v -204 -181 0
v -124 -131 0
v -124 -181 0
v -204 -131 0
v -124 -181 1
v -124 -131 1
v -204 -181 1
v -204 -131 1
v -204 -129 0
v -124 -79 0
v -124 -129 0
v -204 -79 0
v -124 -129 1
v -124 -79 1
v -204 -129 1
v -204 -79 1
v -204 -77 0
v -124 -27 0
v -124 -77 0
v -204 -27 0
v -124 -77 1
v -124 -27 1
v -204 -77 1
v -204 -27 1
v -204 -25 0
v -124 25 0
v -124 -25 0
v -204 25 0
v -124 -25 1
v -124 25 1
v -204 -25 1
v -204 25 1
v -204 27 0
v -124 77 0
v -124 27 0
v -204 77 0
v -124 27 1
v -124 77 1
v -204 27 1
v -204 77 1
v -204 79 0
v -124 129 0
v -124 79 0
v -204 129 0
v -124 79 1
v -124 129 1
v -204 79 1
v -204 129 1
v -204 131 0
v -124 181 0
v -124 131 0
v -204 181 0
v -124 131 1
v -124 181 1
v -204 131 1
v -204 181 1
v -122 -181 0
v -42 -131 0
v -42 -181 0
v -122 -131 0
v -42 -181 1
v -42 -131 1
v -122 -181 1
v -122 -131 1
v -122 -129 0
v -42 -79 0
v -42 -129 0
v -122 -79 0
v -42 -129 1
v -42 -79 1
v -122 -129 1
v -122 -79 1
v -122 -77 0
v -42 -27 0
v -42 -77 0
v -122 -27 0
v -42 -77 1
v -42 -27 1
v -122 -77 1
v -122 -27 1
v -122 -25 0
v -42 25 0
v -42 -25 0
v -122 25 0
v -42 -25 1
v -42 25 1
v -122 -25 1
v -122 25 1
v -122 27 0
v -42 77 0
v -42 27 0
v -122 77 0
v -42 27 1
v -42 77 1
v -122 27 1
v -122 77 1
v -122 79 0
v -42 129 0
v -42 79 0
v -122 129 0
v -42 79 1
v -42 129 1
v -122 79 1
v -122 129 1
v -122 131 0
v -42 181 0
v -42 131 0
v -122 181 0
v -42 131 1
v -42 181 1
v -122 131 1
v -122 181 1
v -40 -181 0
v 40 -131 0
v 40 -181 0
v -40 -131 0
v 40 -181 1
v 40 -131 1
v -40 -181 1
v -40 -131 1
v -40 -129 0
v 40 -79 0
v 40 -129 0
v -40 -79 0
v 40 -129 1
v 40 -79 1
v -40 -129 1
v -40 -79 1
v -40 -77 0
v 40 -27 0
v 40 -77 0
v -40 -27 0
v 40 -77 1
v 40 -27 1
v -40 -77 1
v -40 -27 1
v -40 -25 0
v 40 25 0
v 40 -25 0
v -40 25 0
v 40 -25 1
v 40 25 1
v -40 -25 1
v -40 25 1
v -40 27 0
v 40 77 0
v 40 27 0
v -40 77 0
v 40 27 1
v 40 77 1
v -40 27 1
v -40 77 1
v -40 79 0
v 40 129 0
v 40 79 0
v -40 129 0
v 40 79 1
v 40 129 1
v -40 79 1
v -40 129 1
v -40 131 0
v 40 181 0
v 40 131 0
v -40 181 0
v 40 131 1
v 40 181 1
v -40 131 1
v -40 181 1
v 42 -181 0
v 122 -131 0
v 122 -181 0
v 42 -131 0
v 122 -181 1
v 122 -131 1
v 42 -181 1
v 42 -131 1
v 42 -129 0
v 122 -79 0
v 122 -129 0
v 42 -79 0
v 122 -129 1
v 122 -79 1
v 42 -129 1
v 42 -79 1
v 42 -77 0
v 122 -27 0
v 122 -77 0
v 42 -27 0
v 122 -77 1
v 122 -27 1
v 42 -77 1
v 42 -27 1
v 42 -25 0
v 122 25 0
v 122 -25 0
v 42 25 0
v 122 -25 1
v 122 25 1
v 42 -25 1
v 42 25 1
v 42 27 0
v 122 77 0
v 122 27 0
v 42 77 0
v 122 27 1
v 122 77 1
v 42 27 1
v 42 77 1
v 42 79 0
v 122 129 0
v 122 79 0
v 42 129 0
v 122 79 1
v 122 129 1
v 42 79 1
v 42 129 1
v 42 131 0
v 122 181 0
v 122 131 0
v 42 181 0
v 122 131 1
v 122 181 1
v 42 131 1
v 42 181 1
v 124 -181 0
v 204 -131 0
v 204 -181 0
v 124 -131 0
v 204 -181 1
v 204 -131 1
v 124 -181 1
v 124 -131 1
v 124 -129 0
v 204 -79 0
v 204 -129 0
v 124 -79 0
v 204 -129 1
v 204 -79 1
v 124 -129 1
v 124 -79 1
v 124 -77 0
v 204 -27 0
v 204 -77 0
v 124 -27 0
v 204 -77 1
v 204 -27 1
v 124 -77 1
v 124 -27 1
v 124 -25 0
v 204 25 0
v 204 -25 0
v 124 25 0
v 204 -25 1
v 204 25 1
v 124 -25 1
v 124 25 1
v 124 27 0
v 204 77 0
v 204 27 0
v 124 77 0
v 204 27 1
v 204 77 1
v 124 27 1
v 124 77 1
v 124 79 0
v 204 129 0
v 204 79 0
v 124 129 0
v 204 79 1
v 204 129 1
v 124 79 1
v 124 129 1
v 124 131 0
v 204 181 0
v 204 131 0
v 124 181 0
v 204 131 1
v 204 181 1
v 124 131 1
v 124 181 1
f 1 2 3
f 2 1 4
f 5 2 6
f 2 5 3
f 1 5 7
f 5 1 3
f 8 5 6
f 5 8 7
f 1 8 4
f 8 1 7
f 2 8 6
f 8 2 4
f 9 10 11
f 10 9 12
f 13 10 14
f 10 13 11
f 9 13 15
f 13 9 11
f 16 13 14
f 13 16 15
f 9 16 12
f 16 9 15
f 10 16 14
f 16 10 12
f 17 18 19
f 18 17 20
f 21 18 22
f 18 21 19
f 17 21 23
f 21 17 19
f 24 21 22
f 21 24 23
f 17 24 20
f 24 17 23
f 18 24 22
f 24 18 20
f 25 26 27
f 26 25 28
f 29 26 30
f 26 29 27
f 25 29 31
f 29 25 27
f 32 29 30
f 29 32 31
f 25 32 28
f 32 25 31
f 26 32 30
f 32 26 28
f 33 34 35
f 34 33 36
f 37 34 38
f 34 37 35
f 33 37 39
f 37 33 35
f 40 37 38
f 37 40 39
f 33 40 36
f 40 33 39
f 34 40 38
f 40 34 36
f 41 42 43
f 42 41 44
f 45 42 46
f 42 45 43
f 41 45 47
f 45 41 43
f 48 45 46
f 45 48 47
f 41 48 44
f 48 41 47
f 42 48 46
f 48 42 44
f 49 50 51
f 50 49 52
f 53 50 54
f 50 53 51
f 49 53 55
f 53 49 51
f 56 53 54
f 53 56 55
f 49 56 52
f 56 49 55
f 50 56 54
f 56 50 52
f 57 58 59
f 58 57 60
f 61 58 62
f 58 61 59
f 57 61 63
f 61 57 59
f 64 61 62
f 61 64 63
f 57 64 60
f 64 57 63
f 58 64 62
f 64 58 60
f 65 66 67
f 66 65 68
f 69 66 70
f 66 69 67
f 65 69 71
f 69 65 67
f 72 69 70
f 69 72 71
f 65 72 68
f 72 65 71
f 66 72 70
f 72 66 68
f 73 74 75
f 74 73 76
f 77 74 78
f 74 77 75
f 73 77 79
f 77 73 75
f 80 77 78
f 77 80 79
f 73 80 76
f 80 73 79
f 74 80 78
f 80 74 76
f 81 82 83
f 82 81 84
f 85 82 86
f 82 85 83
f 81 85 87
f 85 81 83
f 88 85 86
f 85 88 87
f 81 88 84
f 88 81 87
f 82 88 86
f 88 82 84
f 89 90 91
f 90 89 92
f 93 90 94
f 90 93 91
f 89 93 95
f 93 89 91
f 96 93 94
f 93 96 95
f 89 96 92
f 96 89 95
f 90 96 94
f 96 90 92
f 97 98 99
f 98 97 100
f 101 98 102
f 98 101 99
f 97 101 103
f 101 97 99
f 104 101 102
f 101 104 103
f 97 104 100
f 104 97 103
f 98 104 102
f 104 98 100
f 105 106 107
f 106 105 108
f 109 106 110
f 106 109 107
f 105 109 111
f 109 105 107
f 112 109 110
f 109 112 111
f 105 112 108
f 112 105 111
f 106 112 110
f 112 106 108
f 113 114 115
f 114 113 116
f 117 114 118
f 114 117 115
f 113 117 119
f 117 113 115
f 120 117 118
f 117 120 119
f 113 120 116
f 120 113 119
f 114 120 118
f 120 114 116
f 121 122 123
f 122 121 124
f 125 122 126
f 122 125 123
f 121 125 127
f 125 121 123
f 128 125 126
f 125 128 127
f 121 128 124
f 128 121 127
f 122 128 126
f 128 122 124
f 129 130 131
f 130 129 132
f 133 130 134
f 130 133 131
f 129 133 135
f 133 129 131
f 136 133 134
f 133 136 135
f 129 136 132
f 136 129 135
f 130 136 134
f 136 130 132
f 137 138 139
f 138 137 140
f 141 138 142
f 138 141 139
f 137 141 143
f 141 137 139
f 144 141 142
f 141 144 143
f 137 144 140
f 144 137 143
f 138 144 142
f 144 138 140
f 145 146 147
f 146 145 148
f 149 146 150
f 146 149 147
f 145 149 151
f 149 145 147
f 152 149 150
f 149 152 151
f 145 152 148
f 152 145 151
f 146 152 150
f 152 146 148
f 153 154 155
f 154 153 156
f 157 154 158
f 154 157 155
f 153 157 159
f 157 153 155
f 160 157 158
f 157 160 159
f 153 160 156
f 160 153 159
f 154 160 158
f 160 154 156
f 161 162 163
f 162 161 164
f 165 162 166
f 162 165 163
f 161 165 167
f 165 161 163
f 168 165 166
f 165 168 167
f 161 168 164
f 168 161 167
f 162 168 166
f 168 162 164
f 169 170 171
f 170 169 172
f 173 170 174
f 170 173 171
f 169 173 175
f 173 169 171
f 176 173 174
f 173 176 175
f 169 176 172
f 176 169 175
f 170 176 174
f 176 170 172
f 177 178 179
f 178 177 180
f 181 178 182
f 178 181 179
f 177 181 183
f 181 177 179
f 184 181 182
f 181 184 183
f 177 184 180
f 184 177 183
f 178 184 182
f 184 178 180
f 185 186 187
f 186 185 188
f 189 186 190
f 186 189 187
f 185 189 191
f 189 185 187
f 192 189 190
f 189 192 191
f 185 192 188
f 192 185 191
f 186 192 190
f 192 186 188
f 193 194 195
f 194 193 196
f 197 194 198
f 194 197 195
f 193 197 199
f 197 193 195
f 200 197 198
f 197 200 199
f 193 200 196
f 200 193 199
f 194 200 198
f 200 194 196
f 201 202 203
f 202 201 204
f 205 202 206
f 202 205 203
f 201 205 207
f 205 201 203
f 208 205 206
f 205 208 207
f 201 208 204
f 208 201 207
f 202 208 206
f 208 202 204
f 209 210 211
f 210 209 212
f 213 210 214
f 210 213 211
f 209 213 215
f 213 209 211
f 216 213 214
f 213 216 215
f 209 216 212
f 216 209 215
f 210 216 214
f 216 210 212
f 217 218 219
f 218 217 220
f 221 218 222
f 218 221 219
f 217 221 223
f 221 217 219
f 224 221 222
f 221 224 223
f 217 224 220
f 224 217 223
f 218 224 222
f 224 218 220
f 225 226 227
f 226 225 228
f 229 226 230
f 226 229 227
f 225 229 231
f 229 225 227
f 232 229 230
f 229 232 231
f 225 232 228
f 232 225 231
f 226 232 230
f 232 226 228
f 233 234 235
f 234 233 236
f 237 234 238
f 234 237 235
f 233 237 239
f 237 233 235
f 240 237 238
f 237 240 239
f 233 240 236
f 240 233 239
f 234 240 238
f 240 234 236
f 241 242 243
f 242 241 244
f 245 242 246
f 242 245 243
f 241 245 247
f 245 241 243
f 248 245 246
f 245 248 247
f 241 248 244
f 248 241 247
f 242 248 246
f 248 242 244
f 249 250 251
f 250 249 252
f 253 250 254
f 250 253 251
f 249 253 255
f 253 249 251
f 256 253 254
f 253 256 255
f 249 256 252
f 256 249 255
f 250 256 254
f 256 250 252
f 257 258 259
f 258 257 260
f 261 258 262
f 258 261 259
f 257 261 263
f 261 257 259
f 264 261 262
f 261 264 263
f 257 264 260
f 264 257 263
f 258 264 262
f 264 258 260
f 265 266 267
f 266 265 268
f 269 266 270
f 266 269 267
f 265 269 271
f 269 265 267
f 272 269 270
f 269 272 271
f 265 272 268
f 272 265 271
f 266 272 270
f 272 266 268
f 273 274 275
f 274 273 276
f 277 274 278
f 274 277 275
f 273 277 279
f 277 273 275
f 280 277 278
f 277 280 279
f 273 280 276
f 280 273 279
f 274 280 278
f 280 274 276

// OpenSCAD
// Generated by Parametrix
ca_surface_faceSurface_0 = [ [ -204.0000, -181.0000 ],[ -124.0000, -181.0000 ],[ -124.0000, -131.0000 ],[ -204.0000, -131.0000 ],[ -204.0000, -181.0000 ] ];
cb_surface_faceSurface_0 = [  0, 1, 2, 3, 4 ];
ca_surface_faceSurface_1 = [ [ -204.0000, -129.0000 ],[ -124.0000, -129.0000 ],[ -124.0000, -79.0000 ],[ -204.0000, -79.0000 ],[ -204.0000, -129.0000 ] ];
cb_surface_faceSurface_1 = [  5, 6, 7, 8, 9 ];
ca_surface_faceSurface_2 = [ [ -204.0000, -77.0000 ],[ -124.0000, -77.0000 ],[ -124.0000, -27.0000 ],[ -204.0000, -27.0000 ],[ -204.0000, -77.0000 ] ];
cb_surface_faceSurface_2 = [  10, 11, 12, 13, 14 ];
ca_surface_faceSurface_3 = [ [ -204.0000, -25.0000 ],[ -124.0000, -25.0000 ],[ -124.0000, 25.0000 ],[ -204.0000, 25.0000 ],[ -204.0000, -25.0000 ] ];
cb_surface_faceSurface_3 = [  15, 16, 17, 18, 19 ];
ca_surface_faceSurface_4 = [ [ -204.0000, 27.0000 ],[ -124.0000, 27.0000 ],[ -124.0000, 77.0000 ],[ -204.0000, 77.0000 ],[ -204.0000, 27.0000 ] ];
cb_surface_faceSurface_4 = [  20, 21, 22, 23, 24 ];
ca_surface_faceSurface_5 = [ [ -204.0000, 79.0000 ],[ -124.0000, 79.0000 ],[ -124.0000, 129.0000 ],[ -204.0000, 129.0000 ],[ -204.0000, 79.0000 ] ];
cb_surface_faceSurface_5 = [  25, 26, 27, 28, 29 ];
ca_surface_faceSurface_6 = [ [ -204.0000, 131.0000 ],[ -124.0000, 131.0000 ],[ -124.0000, 181.0000 ],[ -204.0000, 181.0000 ],[ -204.0000, 131.0000 ] ];
cb_surface_faceSurface_6 = [  30, 31, 32, 33, 34 ];
ca_surface_faceSurface_7 = [ [ -122.0000, -181.0000 ],[ -42.0000, -181.0000 ],[ -42.0000, -131.0000 ],[ -122.0000, -131.0000 ],[ -122.0000, -181.0000 ] ];
cb_surface_faceSurface_7 = [  35, 36, 37, 38, 39 ];
ca_surface_faceSurface_8 = [ [ -122.0000, -129.0000 ],[ -42.0000, -129.0000 ],[ -42.0000, -79.0000 ],[ -122.0000, -79.0000 ],[ -122.0000, -129.0000 ] ];
cb_surface_faceSurface_8 = [  40, 41, 42, 43, 44 ];
ca_surface_faceSurface_9 = [ [ -122.0000, -77.0000 ],[ -42.0000, -77.0000 ],[ -42.0000, -27.0000 ],[ -122.0000, -27.0000 ],[ -122.0000, -77.0000 ] ];
cb_surface_faceSurface_9 = [  45, 46, 47, 48, 49 ];
ca_surface_faceSurface_10 = [ [ -122.0000, -25.0000 ],[ -42.0000, -25.0000 ],[ -42.0000, 25.0000 ],[ -122.0000, 25.0000 ],[ -122.0000, -25.0000 ] ];
cb_surface_faceSurface_10 = [  50, 51, 52, 53, 54 ];
ca_surface_faceSurface_11 = [ [ -122.0000, 27.0000 ],[ -42.0000, 27.0000 ],[ -42.0000, 77.0000 ],[ -122.0000, 77.0000 ],[ -122.0000, 27.0000 ] ];
cb_surface_faceSurface_11 = [  55, 56, 57, 58, 59 ];
ca_surface_faceSurface_12 = [ [ -122.0000, 79.0000 ],[ -42.0000, 79.0000 ],[ -42.0000, 129.0000 ],[ -122.0000, 129.0000 ],[ -122.0000, 79.0000 ] ];
cb_surface_faceSurface_12 = [  60, 61, 62, 63, 64 ];
ca_surface_faceSurface_13 = [ [ -122.0000, 131.0000 ],[ -42.0000, 131.0000 ],[ -42.0000, 181.0000 ],[ -122.0000, 181.0000 ],[ -122.0000, 131.0000 ] ];
cb_surface_faceSurface_13 = [  65, 66, 67, 68, 69 ];
ca_surface_faceSurface_14 = [ [ -40.0000, -181.0000 ],[ 40.0000, -181.0000 ],[ 40.0000, -131.0000 ],[ -40.0000, -131.0000 ],[ -40.0000, -181.0000 ] ];
cb_surface_faceSurface_14 = [  70, 71, 72, 73, 74 ];
ca_surface_faceSurface_15 = [ [ -40.0000, -129.0000 ],[ 40.0000, -129.0000 ],[ 40.0000, -79.0000 ],[ -40.0000, -79.0000 ],[ -40.0000, -129.0000 ] ];
cb_surface_faceSurface_15 = [  75, 76, 77, 78, 79 ];
ca_surface_faceSurface_16 = [ [ -40.0000, -77.0000 ],[ 40.0000, -77.0000 ],[ 40.0000, -27.0000 ],[ -40.0000, -27.0000 ],[ -40.0000, -77.0000 ] ];
cb_surface_faceSurface_16 = [  80, 81, 82, 83, 84 ];
ca_surface_faceSurface_17 = [ [ -40.0000, -25.0000 ],[ 40.0000, -25.0000 ],[ 40.0000, 25.0000 ],[ -40.0000, 25.0000 ],[ -40.0000, -25.0000 ] ];
cb_surface_faceSurface_17 = [  85, 86, 87, 88, 89 ];
ca_surface_faceSurface_18 = [ [ -40.0000, 27.0000 ],[ 40.0000, 27.0000 ],[ 40.0000, 77.0000 ],[ -40.0000, 77.0000 ],[ -40.0000, 27.0000 ] ];
cb_surface_faceSurface_18 = [  90, 91, 92, 93, 94 ];
ca_surface_faceSurface_19 = [ [ -40.0000, 79.0000 ],[ 40.0000, 79.0000 ],[ 40.0000, 129.0000 ],[ -40.0000, 129.0000 ],[ -40.0000, 79.0000 ] ];
cb_surface_faceSurface_19 = [  95, 96, 97, 98, 99 ];
ca_surface_faceSurface_20 = [ [ -40.0000, 131.0000 ],[ 40.0000, 131.0000 ],[ 40.0000, 181.0000 ],[ -40.0000, 181.0000 ],[ -40.0000, 131.0000 ] ];
cb_surface_faceSurface_20 = [  100, 101, 102, 103, 104 ];
ca_surface_faceSurface_21 = [ [ 42.0000, -181.0000 ],[ 122.0000, -181.0000 ],[ 122.0000, -131.0000 ],[ 42.0000, -131.0000 ],[ 42.0000, -181.0000 ] ];
cb_surface_faceSurface_21 = [  105, 106, 107, 108, 109 ];
ca_surface_faceSurface_22 = [ [ 42.0000, -129.0000 ],[ 122.0000, -129.0000 ],[ 122.0000, -79.0000 ],[ 42.0000, -79.0000 ],[ 42.0000, -129.0000 ] ];
cb_surface_faceSurface_22 = [  110, 111, 112, 113, 114 ];
ca_surface_faceSurface_23 = [ [ 42.0000, -77.0000 ],[ 122.0000, -77.0000 ],[ 122.0000, -27.0000 ],[ 42.0000, -27.0000 ],[ 42.0000, -77.0000 ] ];
cb_surface_faceSurface_23 = [  115, 116, 117, 118, 119 ];
ca_surface_faceSurface_24 = [ [ 42.0000, -25.0000 ],[ 122.0000, -25.0000 ],[ 122.0000, 25.0000 ],[ 42.0000, 25.0000 ],[ 42.0000, -25.0000 ] ];
cb_surface_faceSurface_24 = [  120, 121, 122, 123, 124 ];
ca_surface_faceSurface_25 = [ [ 42.0000, 27.0000 ],[ 122.0000, 27.0000 ],[ 122.0000, 77.0000 ],[ 42.0000, 77.0000 ],[ 42.0000, 27.0000 ] ];
cb_surface_faceSurface_25 = [  125, 126, 127, 128, 129 ];
ca_surface_faceSurface_26 = [ [ 42.0000, 79.0000 ],[ 122.0000, 79.0000 ],[ 122.0000, 129.0000 ],[ 42.0000, 129.0000 ],[ 42.0000, 79.0000 ] ];
cb_surface_faceSurface_26 = [  130, 131, 132, 133, 134 ];
ca_surface_faceSurface_27 = [ [ 42.0000, 131.0000 ],[ 122.0000, 131.0000 ],[ 122.0000, 181.0000 ],[ 42.0000, 181.0000 ],[ 42.0000, 131.0000 ] ];
cb_surface_faceSurface_27 = [  135, 136, 137, 138, 139 ];
ca_surface_faceSurface_28 = [ [ 124.0000, -181.0000 ],[ 204.0000, -181.0000 ],[ 204.0000, -131.0000 ],[ 124.0000, -131.0000 ],[ 124.0000, -181.0000 ] ];
cb_surface_faceSurface_28 = [  140, 141, 142, 143, 144 ];
ca_surface_faceSurface_29 = [ [ 124.0000, -129.0000 ],[ 204.0000, -129.0000 ],[ 204.0000, -79.0000 ],[ 124.0000, -79.0000 ],[ 124.0000, -129.0000 ] ];
cb_surface_faceSurface_29 = [  145, 146, 147, 148, 149 ];
ca_surface_faceSurface_30 = [ [ 124.0000, -77.0000 ],[ 204.0000, -77.0000 ],[ 204.0000, -27.0000 ],[ 124.0000, -27.0000 ],[ 124.0000, -77.0000 ] ];
cb_surface_faceSurface_30 = [  150, 151, 152, 153, 154 ];
ca_surface_faceSurface_31 = [ [ 124.0000, -25.0000 ],[ 204.0000, -25.0000 ],[ 204.0000, 25.0000 ],[ 124.0000, 25.0000 ],[ 124.0000, -25.0000 ] ];
cb_surface_faceSurface_31 = [  155, 156, 157, 158, 159 ];
ca_surface_faceSurface_32 = [ [ 124.0000, 27.0000 ],[ 204.0000, 27.0000 ],[ 204.0000, 77.0000 ],[ 124.0000, 77.0000 ],[ 124.0000, 27.0000 ] ];
cb_surface_faceSurface_32 = [  160, 161, 162, 163, 164 ];
ca_surface_faceSurface_33 = [ [ 124.0000, 79.0000 ],[ 204.0000, 79.0000 ],[ 204.0000, 129.0000 ],[ 124.0000, 129.0000 ],[ 124.0000, 79.0000 ] ];
cb_surface_faceSurface_33 = [  165, 166, 167, 168, 169 ];
ca_surface_faceSurface_34 = [ [ 124.0000, 131.0000 ],[ 204.0000, 131.0000 ],[ 204.0000, 181.0000 ],[ 124.0000, 181.0000 ],[ 124.0000, 131.0000 ] ];
cb_surface_faceSurface_34 = [  170, 171, 172, 173, 174 ];
a_surface_faceSurface = concat(ca_surface_faceSurface_0, ca_surface_faceSurface_1, ca_surface_faceSurface_2, ca_surface_faceSurface_3, ca_surface_faceSurface_4, ca_surface_faceSurface_5, ca_surface_faceSurface_6, ca_surface_faceSurface_7, ca_surface_faceSurface_8, ca_surface_faceSurface_9, ca_surface_faceSurface_10, ca_surface_faceSurface_11, ca_surface_faceSurface_12, ca_surface_faceSurface_13, ca_surface_faceSurface_14, ca_surface_faceSurface_15, ca_surface_faceSurface_16, ca_surface_faceSurface_17, ca_surface_faceSurface_18, ca_surface_faceSurface_19, ca_surface_faceSurface_20, ca_surface_faceSurface_21, ca_surface_faceSurface_22, ca_surface_faceSurface_23, ca_surface_faceSurface_24, ca_surface_faceSurface_25, ca_surface_faceSurface_26, ca_surface_faceSurface_27, ca_surface_faceSurface_28, ca_surface_faceSurface_29, ca_surface_faceSurface_30, ca_surface_faceSurface_31, ca_surface_faceSurface_32, ca_surface_faceSurface_33, ca_surface_faceSurface_34);
b_surface_faceSurface = [cb_surface_faceSurface_0, cb_surface_faceSurface_1, cb_surface_faceSurface_2, cb_surface_faceSurface_3, cb_surface_faceSurface_4, cb_surface_faceSurface_5, cb_surface_faceSurface_6, cb_surface_faceSurface_7, cb_surface_faceSurface_8, cb_surface_faceSurface_9, cb_surface_faceSurface_10, cb_surface_faceSurface_11, cb_surface_faceSurface_12, cb_surface_faceSurface_13, cb_surface_faceSurface_14, cb_surface_faceSurface_15, cb_surface_faceSurface_16, cb_surface_faceSurface_17, cb_surface_faceSurface_18, cb_surface_faceSurface_19, cb_surface_faceSurface_20, cb_surface_faceSurface_21, cb_surface_faceSurface_22, cb_surface_faceSurface_23, cb_surface_faceSurface_24, cb_surface_faceSurface_25, cb_surface_faceSurface_26, cb_surface_faceSurface_27, cb_surface_faceSurface_28, cb_surface_faceSurface_29, cb_surface_faceSurface_30, cb_surface_faceSurface_31, cb_surface_faceSurface_32, cb_surface_faceSurface_33, cb_surface_faceSurface_34];
ca_surface_faceOnePanel_0 = [ [ 0.0000, 0.0000 ],[ 80.0000, 0.0000 ],[ 80.0000, 50.0000 ],[ 0.0000, 50.0000 ],[ 0.0000, 0.0000 ] ];
cb_surface_faceOnePanel_0 = [  0, 1, 2, 3, 4 ];
a_surface_faceOnePanel = concat(ca_surface_faceOnePanel_0);
b_surface_faceOnePanel = [cb_surface_faceOnePanel_0];

module subpax_surface_panel_0 () {
	translate( [ -204, -181, 0 ])
		rotate( [ 0, 0, 0 ])
			   linear_extrude(height = 1) polygon(a_surface_faceOnePanel, b_surface_faceOnePanel);
}

module subpax_surface_panel_1 () {
	translate( [ -204, -129, 0 ])
		rotate( [ 0, 0, 0 ])
			   linear_extrude(height = 1) polygon(a_surface_faceOnePanel, b_surface_faceOnePanel);
}

module subpax_surface_panel_2 () {
	translate( [ -204, -77, 0 ])
		rotate( [ 0, 0, 0 ])
			   linear_extrude(height = 1) polygon(a_surface_faceOnePanel, b_surface_faceOnePanel);
}

module subpax_surface_panel_3 () {
	translate( [ -204, -25, 0 ])
		rotate( [ 0, 0, 0 ])
			   linear_extrude(height = 1) polygon(a_surface_faceOnePanel, b_surface_faceOnePanel);
}

module subpax_surface_panel_4 () {
	translate( [ -204, 27, 0 ])
		rotate( [ 0, 0, 0 ])
			   linear_extrude(height = 1) polygon(a_surface_faceOnePanel, b_surface_faceOnePanel);
}

module subpax_surface_panel_5 () {
	translate( [ -204, 79, 0 ])
		rotate( [ 0, 0, 0 ])
			   linear_extrude(height = 1) polygon(a_surface_faceOnePanel, b_surface_faceOnePanel);
}

module subpax_surface_panel_6 () {
	translate( [ -204, 131, 0 ])
		rotate( [ 0, 0, 0 ])
			   linear_extrude(height = 1) polygon(a_surface_faceOnePanel, b_surface_faceOnePanel);
}

module subpax_surface_panel_7 () {
	translate( [ -122, -181, 0 ])
		rotate( [ 0, 0, 0 ])
			   linear_extrude(height = 1) polygon(a_surface_faceOnePanel, b_surface_faceOnePanel);
}

module subpax_surface_panel_8 () {
	translate( [ -122, -129, 0 ])
		rotate( [ 0, 0, 0 ])
			   linear_extrude(height = 1) polygon(a_surface_faceOnePanel, b_surface_faceOnePanel);
}

module subpax_surface_panel_9 () {
	translate( [ -122, -77, 0 ])
		rotate( [ 0, 0, 0 ])
			   linear_extrude(height = 1) polygon(a_surface_faceOnePanel, b_surface_faceOnePanel);
}

module subpax_surface_panel_10 () {
	translate( [ -122, -25, 0 ])
		rotate( [ 0, 0, 0 ])
			   linear_extrude(height = 1) polygon(a_surface_faceOnePanel, b_surface_faceOnePanel);
}

module subpax_surface_panel_11 () {
	translate( [ -122, 27, 0 ])
		rotate( [ 0, 0, 0 ])
			   linear_extrude(height = 1) polygon(a_surface_faceOnePanel, b_surface_faceOnePanel);
}

module subpax_surface_panel_12 () {
	translate( [ -122, 79, 0 ])
		rotate( [ 0, 0, 0 ])
			   linear_extrude(height = 1) polygon(a_surface_faceOnePanel, b_surface_faceOnePanel);
}

module subpax_surface_panel_13 () {
	translate( [ -122, 131, 0 ])
		rotate( [ 0, 0, 0 ])
			   linear_extrude(height = 1) polygon(a_surface_faceOnePanel, b_surface_faceOnePanel);
}

module subpax_surface_panel_14 () {
	translate( [ -40, -181, 0 ])
		rotate( [ 0, 0, 0 ])
			   linear_extrude(height = 1) polygon(a_surface_faceOnePanel, b_surface_faceOnePanel);
}

module subpax_surface_panel_15 () {
	translate( [ -40, -129, 0 ])
		rotate( [ 0, 0, 0 ])
			   linear_extrude(height = 1) polygon(a_surface_faceOnePanel, b_surface_faceOnePanel);
}

module subpax_surface_panel_16 () {
	translate( [ -40, -77, 0 ])
		rotate( [ 0, 0, 0 ])
			   linear_extrude(height = 1) polygon(a_surface_faceOnePanel, b_surface_faceOnePanel);
}

module subpax_surface_panel_17 () {
	translate( [ -40, -25, 0 ])
		rotate( [ 0, 0, 0 ])
			   linear_extrude(height = 1) polygon(a_surface_faceOnePanel, b_surface_faceOnePanel);
}

module subpax_surface_panel_18 () {
	translate( [ -40, 27, 0 ])
		rotate( [ 0, 0, 0 ])
			   linear_extrude(height = 1) polygon(a_surface_faceOnePanel, b_surface_faceOnePanel);
}

module subpax_surface_panel_19 () {
	translate( [ -40, 79, 0 ])
		rotate( [ 0, 0, 0 ])
			   linear_extrude(height = 1) polygon(a_surface_faceOnePanel, b_surface_faceOnePanel);
}

module subpax_surface_panel_20 () {
	translate( [ -40, 131, 0 ])
		rotate( [ 0, 0, 0 ])
			   linear_extrude(height = 1) polygon(a_surface_faceOnePanel, b_surface_faceOnePanel);
}

module subpax_surface_panel_21 () {
	translate( [ 42, -181, 0 ])
		rotate( [ 0, 0, 0 ])
			   linear_extrude(height = 1) polygon(a_surface_faceOnePanel, b_surface_faceOnePanel);
}

module subpax_surface_panel_22 () {
	translate( [ 42, -129, 0 ])
		rotate( [ 0, 0, 0 ])
			   linear_extrude(height = 1) polygon(a_surface_faceOnePanel, b_surface_faceOnePanel);
}

module subpax_surface_panel_23 () {
	translate( [ 42, -77, 0 ])
		rotate( [ 0, 0, 0 ])
			   linear_extrude(height = 1) polygon(a_surface_faceOnePanel, b_surface_faceOnePanel);
}

module subpax_surface_panel_24 () {
	translate( [ 42, -25, 0 ])
		rotate( [ 0, 0, 0 ])
			   linear_extrude(height = 1) polygon(a_surface_faceOnePanel, b_surface_faceOnePanel);
}

module subpax_surface_panel_25 () {
	translate( [ 42, 27, 0 ])
		rotate( [ 0, 0, 0 ])
			   linear_extrude(height = 1) polygon(a_surface_faceOnePanel, b_surface_faceOnePanel);
}

module subpax_surface_panel_26 () {
	translate( [ 42, 79, 0 ])
		rotate( [ 0, 0, 0 ])
			   linear_extrude(height = 1) polygon(a_surface_faceOnePanel, b_surface_faceOnePanel);
}

module subpax_surface_panel_27 () {
	translate( [ 42, 131, 0 ])
		rotate( [ 0, 0, 0 ])
			   linear_extrude(height = 1) polygon(a_surface_faceOnePanel, b_surface_faceOnePanel);
}

module subpax_surface_panel_28 () {
	translate( [ 124, -181, 0 ])
		rotate( [ 0, 0, 0 ])
			   linear_extrude(height = 1) polygon(a_surface_faceOnePanel, b_surface_faceOnePanel);
}

module subpax_surface_panel_29 () {
	translate( [ 124, -129, 0 ])
		rotate( [ 0, 0, 0 ])
			   linear_extrude(height = 1) polygon(a_surface_faceOnePanel, b_surface_faceOnePanel);
}

module subpax_surface_panel_30 () {
	translate( [ 124, -77, 0 ])
		rotate( [ 0, 0, 0 ])
			   linear_extrude(height = 1) polygon(a_surface_faceOnePanel, b_surface_faceOnePanel);
}

module subpax_surface_panel_31 () {
	translate( [ 124, -25, 0 ])
		rotate( [ 0, 0, 0 ])
			   linear_extrude(height = 1) polygon(a_surface_faceOnePanel, b_surface_faceOnePanel);
}

module subpax_surface_panel_32 () {
	translate( [ 124, 27, 0 ])
		rotate( [ 0, 0, 0 ])
			   linear_extrude(height = 1) polygon(a_surface_faceOnePanel, b_surface_faceOnePanel);
}

module subpax_surface_panel_33 () {
	translate( [ 124, 79, 0 ])
		rotate( [ 0, 0, 0 ])
			   linear_extrude(height = 1) polygon(a_surface_faceOnePanel, b_surface_faceOnePanel);
}

module subpax_surface_panel_34 () {
	translate( [ 124, 131, 0 ])
		rotate( [ 0, 0, 0 ])
			   linear_extrude(height = 1) polygon(a_surface_faceOnePanel, b_surface_faceOnePanel);
}

module pax_surface () {
	union () {
		subpax_surface_panel_0();
subpax_surface_panel_1();
subpax_surface_panel_2();
subpax_surface_panel_3();
subpax_surface_panel_4();
subpax_surface_panel_5();
subpax_surface_panel_6();
subpax_surface_panel_7();
subpax_surface_panel_8();
subpax_surface_panel_9();
subpax_surface_panel_10();
subpax_surface_panel_11();
subpax_surface_panel_12();
subpax_surface_panel_13();
subpax_surface_panel_14();
subpax_surface_panel_15();
subpax_surface_panel_16();
subpax_surface_panel_17();
subpax_surface_panel_18();
subpax_surface_panel_19();
subpax_surface_panel_20();
subpax_surface_panel_21();
subpax_surface_panel_22();
subpax_surface_panel_23();
subpax_surface_panel_24();
subpax_surface_panel_25();
subpax_surface_panel_26();
subpax_surface_panel_27();
subpax_surface_panel_28();
subpax_surface_panel_29();
subpax_surface_panel_30();
subpax_surface_panel_31();
subpax_surface_panel_32();
subpax_surface_panel_33();
subpax_surface_panel_34();
	}
}

pax_surface();
